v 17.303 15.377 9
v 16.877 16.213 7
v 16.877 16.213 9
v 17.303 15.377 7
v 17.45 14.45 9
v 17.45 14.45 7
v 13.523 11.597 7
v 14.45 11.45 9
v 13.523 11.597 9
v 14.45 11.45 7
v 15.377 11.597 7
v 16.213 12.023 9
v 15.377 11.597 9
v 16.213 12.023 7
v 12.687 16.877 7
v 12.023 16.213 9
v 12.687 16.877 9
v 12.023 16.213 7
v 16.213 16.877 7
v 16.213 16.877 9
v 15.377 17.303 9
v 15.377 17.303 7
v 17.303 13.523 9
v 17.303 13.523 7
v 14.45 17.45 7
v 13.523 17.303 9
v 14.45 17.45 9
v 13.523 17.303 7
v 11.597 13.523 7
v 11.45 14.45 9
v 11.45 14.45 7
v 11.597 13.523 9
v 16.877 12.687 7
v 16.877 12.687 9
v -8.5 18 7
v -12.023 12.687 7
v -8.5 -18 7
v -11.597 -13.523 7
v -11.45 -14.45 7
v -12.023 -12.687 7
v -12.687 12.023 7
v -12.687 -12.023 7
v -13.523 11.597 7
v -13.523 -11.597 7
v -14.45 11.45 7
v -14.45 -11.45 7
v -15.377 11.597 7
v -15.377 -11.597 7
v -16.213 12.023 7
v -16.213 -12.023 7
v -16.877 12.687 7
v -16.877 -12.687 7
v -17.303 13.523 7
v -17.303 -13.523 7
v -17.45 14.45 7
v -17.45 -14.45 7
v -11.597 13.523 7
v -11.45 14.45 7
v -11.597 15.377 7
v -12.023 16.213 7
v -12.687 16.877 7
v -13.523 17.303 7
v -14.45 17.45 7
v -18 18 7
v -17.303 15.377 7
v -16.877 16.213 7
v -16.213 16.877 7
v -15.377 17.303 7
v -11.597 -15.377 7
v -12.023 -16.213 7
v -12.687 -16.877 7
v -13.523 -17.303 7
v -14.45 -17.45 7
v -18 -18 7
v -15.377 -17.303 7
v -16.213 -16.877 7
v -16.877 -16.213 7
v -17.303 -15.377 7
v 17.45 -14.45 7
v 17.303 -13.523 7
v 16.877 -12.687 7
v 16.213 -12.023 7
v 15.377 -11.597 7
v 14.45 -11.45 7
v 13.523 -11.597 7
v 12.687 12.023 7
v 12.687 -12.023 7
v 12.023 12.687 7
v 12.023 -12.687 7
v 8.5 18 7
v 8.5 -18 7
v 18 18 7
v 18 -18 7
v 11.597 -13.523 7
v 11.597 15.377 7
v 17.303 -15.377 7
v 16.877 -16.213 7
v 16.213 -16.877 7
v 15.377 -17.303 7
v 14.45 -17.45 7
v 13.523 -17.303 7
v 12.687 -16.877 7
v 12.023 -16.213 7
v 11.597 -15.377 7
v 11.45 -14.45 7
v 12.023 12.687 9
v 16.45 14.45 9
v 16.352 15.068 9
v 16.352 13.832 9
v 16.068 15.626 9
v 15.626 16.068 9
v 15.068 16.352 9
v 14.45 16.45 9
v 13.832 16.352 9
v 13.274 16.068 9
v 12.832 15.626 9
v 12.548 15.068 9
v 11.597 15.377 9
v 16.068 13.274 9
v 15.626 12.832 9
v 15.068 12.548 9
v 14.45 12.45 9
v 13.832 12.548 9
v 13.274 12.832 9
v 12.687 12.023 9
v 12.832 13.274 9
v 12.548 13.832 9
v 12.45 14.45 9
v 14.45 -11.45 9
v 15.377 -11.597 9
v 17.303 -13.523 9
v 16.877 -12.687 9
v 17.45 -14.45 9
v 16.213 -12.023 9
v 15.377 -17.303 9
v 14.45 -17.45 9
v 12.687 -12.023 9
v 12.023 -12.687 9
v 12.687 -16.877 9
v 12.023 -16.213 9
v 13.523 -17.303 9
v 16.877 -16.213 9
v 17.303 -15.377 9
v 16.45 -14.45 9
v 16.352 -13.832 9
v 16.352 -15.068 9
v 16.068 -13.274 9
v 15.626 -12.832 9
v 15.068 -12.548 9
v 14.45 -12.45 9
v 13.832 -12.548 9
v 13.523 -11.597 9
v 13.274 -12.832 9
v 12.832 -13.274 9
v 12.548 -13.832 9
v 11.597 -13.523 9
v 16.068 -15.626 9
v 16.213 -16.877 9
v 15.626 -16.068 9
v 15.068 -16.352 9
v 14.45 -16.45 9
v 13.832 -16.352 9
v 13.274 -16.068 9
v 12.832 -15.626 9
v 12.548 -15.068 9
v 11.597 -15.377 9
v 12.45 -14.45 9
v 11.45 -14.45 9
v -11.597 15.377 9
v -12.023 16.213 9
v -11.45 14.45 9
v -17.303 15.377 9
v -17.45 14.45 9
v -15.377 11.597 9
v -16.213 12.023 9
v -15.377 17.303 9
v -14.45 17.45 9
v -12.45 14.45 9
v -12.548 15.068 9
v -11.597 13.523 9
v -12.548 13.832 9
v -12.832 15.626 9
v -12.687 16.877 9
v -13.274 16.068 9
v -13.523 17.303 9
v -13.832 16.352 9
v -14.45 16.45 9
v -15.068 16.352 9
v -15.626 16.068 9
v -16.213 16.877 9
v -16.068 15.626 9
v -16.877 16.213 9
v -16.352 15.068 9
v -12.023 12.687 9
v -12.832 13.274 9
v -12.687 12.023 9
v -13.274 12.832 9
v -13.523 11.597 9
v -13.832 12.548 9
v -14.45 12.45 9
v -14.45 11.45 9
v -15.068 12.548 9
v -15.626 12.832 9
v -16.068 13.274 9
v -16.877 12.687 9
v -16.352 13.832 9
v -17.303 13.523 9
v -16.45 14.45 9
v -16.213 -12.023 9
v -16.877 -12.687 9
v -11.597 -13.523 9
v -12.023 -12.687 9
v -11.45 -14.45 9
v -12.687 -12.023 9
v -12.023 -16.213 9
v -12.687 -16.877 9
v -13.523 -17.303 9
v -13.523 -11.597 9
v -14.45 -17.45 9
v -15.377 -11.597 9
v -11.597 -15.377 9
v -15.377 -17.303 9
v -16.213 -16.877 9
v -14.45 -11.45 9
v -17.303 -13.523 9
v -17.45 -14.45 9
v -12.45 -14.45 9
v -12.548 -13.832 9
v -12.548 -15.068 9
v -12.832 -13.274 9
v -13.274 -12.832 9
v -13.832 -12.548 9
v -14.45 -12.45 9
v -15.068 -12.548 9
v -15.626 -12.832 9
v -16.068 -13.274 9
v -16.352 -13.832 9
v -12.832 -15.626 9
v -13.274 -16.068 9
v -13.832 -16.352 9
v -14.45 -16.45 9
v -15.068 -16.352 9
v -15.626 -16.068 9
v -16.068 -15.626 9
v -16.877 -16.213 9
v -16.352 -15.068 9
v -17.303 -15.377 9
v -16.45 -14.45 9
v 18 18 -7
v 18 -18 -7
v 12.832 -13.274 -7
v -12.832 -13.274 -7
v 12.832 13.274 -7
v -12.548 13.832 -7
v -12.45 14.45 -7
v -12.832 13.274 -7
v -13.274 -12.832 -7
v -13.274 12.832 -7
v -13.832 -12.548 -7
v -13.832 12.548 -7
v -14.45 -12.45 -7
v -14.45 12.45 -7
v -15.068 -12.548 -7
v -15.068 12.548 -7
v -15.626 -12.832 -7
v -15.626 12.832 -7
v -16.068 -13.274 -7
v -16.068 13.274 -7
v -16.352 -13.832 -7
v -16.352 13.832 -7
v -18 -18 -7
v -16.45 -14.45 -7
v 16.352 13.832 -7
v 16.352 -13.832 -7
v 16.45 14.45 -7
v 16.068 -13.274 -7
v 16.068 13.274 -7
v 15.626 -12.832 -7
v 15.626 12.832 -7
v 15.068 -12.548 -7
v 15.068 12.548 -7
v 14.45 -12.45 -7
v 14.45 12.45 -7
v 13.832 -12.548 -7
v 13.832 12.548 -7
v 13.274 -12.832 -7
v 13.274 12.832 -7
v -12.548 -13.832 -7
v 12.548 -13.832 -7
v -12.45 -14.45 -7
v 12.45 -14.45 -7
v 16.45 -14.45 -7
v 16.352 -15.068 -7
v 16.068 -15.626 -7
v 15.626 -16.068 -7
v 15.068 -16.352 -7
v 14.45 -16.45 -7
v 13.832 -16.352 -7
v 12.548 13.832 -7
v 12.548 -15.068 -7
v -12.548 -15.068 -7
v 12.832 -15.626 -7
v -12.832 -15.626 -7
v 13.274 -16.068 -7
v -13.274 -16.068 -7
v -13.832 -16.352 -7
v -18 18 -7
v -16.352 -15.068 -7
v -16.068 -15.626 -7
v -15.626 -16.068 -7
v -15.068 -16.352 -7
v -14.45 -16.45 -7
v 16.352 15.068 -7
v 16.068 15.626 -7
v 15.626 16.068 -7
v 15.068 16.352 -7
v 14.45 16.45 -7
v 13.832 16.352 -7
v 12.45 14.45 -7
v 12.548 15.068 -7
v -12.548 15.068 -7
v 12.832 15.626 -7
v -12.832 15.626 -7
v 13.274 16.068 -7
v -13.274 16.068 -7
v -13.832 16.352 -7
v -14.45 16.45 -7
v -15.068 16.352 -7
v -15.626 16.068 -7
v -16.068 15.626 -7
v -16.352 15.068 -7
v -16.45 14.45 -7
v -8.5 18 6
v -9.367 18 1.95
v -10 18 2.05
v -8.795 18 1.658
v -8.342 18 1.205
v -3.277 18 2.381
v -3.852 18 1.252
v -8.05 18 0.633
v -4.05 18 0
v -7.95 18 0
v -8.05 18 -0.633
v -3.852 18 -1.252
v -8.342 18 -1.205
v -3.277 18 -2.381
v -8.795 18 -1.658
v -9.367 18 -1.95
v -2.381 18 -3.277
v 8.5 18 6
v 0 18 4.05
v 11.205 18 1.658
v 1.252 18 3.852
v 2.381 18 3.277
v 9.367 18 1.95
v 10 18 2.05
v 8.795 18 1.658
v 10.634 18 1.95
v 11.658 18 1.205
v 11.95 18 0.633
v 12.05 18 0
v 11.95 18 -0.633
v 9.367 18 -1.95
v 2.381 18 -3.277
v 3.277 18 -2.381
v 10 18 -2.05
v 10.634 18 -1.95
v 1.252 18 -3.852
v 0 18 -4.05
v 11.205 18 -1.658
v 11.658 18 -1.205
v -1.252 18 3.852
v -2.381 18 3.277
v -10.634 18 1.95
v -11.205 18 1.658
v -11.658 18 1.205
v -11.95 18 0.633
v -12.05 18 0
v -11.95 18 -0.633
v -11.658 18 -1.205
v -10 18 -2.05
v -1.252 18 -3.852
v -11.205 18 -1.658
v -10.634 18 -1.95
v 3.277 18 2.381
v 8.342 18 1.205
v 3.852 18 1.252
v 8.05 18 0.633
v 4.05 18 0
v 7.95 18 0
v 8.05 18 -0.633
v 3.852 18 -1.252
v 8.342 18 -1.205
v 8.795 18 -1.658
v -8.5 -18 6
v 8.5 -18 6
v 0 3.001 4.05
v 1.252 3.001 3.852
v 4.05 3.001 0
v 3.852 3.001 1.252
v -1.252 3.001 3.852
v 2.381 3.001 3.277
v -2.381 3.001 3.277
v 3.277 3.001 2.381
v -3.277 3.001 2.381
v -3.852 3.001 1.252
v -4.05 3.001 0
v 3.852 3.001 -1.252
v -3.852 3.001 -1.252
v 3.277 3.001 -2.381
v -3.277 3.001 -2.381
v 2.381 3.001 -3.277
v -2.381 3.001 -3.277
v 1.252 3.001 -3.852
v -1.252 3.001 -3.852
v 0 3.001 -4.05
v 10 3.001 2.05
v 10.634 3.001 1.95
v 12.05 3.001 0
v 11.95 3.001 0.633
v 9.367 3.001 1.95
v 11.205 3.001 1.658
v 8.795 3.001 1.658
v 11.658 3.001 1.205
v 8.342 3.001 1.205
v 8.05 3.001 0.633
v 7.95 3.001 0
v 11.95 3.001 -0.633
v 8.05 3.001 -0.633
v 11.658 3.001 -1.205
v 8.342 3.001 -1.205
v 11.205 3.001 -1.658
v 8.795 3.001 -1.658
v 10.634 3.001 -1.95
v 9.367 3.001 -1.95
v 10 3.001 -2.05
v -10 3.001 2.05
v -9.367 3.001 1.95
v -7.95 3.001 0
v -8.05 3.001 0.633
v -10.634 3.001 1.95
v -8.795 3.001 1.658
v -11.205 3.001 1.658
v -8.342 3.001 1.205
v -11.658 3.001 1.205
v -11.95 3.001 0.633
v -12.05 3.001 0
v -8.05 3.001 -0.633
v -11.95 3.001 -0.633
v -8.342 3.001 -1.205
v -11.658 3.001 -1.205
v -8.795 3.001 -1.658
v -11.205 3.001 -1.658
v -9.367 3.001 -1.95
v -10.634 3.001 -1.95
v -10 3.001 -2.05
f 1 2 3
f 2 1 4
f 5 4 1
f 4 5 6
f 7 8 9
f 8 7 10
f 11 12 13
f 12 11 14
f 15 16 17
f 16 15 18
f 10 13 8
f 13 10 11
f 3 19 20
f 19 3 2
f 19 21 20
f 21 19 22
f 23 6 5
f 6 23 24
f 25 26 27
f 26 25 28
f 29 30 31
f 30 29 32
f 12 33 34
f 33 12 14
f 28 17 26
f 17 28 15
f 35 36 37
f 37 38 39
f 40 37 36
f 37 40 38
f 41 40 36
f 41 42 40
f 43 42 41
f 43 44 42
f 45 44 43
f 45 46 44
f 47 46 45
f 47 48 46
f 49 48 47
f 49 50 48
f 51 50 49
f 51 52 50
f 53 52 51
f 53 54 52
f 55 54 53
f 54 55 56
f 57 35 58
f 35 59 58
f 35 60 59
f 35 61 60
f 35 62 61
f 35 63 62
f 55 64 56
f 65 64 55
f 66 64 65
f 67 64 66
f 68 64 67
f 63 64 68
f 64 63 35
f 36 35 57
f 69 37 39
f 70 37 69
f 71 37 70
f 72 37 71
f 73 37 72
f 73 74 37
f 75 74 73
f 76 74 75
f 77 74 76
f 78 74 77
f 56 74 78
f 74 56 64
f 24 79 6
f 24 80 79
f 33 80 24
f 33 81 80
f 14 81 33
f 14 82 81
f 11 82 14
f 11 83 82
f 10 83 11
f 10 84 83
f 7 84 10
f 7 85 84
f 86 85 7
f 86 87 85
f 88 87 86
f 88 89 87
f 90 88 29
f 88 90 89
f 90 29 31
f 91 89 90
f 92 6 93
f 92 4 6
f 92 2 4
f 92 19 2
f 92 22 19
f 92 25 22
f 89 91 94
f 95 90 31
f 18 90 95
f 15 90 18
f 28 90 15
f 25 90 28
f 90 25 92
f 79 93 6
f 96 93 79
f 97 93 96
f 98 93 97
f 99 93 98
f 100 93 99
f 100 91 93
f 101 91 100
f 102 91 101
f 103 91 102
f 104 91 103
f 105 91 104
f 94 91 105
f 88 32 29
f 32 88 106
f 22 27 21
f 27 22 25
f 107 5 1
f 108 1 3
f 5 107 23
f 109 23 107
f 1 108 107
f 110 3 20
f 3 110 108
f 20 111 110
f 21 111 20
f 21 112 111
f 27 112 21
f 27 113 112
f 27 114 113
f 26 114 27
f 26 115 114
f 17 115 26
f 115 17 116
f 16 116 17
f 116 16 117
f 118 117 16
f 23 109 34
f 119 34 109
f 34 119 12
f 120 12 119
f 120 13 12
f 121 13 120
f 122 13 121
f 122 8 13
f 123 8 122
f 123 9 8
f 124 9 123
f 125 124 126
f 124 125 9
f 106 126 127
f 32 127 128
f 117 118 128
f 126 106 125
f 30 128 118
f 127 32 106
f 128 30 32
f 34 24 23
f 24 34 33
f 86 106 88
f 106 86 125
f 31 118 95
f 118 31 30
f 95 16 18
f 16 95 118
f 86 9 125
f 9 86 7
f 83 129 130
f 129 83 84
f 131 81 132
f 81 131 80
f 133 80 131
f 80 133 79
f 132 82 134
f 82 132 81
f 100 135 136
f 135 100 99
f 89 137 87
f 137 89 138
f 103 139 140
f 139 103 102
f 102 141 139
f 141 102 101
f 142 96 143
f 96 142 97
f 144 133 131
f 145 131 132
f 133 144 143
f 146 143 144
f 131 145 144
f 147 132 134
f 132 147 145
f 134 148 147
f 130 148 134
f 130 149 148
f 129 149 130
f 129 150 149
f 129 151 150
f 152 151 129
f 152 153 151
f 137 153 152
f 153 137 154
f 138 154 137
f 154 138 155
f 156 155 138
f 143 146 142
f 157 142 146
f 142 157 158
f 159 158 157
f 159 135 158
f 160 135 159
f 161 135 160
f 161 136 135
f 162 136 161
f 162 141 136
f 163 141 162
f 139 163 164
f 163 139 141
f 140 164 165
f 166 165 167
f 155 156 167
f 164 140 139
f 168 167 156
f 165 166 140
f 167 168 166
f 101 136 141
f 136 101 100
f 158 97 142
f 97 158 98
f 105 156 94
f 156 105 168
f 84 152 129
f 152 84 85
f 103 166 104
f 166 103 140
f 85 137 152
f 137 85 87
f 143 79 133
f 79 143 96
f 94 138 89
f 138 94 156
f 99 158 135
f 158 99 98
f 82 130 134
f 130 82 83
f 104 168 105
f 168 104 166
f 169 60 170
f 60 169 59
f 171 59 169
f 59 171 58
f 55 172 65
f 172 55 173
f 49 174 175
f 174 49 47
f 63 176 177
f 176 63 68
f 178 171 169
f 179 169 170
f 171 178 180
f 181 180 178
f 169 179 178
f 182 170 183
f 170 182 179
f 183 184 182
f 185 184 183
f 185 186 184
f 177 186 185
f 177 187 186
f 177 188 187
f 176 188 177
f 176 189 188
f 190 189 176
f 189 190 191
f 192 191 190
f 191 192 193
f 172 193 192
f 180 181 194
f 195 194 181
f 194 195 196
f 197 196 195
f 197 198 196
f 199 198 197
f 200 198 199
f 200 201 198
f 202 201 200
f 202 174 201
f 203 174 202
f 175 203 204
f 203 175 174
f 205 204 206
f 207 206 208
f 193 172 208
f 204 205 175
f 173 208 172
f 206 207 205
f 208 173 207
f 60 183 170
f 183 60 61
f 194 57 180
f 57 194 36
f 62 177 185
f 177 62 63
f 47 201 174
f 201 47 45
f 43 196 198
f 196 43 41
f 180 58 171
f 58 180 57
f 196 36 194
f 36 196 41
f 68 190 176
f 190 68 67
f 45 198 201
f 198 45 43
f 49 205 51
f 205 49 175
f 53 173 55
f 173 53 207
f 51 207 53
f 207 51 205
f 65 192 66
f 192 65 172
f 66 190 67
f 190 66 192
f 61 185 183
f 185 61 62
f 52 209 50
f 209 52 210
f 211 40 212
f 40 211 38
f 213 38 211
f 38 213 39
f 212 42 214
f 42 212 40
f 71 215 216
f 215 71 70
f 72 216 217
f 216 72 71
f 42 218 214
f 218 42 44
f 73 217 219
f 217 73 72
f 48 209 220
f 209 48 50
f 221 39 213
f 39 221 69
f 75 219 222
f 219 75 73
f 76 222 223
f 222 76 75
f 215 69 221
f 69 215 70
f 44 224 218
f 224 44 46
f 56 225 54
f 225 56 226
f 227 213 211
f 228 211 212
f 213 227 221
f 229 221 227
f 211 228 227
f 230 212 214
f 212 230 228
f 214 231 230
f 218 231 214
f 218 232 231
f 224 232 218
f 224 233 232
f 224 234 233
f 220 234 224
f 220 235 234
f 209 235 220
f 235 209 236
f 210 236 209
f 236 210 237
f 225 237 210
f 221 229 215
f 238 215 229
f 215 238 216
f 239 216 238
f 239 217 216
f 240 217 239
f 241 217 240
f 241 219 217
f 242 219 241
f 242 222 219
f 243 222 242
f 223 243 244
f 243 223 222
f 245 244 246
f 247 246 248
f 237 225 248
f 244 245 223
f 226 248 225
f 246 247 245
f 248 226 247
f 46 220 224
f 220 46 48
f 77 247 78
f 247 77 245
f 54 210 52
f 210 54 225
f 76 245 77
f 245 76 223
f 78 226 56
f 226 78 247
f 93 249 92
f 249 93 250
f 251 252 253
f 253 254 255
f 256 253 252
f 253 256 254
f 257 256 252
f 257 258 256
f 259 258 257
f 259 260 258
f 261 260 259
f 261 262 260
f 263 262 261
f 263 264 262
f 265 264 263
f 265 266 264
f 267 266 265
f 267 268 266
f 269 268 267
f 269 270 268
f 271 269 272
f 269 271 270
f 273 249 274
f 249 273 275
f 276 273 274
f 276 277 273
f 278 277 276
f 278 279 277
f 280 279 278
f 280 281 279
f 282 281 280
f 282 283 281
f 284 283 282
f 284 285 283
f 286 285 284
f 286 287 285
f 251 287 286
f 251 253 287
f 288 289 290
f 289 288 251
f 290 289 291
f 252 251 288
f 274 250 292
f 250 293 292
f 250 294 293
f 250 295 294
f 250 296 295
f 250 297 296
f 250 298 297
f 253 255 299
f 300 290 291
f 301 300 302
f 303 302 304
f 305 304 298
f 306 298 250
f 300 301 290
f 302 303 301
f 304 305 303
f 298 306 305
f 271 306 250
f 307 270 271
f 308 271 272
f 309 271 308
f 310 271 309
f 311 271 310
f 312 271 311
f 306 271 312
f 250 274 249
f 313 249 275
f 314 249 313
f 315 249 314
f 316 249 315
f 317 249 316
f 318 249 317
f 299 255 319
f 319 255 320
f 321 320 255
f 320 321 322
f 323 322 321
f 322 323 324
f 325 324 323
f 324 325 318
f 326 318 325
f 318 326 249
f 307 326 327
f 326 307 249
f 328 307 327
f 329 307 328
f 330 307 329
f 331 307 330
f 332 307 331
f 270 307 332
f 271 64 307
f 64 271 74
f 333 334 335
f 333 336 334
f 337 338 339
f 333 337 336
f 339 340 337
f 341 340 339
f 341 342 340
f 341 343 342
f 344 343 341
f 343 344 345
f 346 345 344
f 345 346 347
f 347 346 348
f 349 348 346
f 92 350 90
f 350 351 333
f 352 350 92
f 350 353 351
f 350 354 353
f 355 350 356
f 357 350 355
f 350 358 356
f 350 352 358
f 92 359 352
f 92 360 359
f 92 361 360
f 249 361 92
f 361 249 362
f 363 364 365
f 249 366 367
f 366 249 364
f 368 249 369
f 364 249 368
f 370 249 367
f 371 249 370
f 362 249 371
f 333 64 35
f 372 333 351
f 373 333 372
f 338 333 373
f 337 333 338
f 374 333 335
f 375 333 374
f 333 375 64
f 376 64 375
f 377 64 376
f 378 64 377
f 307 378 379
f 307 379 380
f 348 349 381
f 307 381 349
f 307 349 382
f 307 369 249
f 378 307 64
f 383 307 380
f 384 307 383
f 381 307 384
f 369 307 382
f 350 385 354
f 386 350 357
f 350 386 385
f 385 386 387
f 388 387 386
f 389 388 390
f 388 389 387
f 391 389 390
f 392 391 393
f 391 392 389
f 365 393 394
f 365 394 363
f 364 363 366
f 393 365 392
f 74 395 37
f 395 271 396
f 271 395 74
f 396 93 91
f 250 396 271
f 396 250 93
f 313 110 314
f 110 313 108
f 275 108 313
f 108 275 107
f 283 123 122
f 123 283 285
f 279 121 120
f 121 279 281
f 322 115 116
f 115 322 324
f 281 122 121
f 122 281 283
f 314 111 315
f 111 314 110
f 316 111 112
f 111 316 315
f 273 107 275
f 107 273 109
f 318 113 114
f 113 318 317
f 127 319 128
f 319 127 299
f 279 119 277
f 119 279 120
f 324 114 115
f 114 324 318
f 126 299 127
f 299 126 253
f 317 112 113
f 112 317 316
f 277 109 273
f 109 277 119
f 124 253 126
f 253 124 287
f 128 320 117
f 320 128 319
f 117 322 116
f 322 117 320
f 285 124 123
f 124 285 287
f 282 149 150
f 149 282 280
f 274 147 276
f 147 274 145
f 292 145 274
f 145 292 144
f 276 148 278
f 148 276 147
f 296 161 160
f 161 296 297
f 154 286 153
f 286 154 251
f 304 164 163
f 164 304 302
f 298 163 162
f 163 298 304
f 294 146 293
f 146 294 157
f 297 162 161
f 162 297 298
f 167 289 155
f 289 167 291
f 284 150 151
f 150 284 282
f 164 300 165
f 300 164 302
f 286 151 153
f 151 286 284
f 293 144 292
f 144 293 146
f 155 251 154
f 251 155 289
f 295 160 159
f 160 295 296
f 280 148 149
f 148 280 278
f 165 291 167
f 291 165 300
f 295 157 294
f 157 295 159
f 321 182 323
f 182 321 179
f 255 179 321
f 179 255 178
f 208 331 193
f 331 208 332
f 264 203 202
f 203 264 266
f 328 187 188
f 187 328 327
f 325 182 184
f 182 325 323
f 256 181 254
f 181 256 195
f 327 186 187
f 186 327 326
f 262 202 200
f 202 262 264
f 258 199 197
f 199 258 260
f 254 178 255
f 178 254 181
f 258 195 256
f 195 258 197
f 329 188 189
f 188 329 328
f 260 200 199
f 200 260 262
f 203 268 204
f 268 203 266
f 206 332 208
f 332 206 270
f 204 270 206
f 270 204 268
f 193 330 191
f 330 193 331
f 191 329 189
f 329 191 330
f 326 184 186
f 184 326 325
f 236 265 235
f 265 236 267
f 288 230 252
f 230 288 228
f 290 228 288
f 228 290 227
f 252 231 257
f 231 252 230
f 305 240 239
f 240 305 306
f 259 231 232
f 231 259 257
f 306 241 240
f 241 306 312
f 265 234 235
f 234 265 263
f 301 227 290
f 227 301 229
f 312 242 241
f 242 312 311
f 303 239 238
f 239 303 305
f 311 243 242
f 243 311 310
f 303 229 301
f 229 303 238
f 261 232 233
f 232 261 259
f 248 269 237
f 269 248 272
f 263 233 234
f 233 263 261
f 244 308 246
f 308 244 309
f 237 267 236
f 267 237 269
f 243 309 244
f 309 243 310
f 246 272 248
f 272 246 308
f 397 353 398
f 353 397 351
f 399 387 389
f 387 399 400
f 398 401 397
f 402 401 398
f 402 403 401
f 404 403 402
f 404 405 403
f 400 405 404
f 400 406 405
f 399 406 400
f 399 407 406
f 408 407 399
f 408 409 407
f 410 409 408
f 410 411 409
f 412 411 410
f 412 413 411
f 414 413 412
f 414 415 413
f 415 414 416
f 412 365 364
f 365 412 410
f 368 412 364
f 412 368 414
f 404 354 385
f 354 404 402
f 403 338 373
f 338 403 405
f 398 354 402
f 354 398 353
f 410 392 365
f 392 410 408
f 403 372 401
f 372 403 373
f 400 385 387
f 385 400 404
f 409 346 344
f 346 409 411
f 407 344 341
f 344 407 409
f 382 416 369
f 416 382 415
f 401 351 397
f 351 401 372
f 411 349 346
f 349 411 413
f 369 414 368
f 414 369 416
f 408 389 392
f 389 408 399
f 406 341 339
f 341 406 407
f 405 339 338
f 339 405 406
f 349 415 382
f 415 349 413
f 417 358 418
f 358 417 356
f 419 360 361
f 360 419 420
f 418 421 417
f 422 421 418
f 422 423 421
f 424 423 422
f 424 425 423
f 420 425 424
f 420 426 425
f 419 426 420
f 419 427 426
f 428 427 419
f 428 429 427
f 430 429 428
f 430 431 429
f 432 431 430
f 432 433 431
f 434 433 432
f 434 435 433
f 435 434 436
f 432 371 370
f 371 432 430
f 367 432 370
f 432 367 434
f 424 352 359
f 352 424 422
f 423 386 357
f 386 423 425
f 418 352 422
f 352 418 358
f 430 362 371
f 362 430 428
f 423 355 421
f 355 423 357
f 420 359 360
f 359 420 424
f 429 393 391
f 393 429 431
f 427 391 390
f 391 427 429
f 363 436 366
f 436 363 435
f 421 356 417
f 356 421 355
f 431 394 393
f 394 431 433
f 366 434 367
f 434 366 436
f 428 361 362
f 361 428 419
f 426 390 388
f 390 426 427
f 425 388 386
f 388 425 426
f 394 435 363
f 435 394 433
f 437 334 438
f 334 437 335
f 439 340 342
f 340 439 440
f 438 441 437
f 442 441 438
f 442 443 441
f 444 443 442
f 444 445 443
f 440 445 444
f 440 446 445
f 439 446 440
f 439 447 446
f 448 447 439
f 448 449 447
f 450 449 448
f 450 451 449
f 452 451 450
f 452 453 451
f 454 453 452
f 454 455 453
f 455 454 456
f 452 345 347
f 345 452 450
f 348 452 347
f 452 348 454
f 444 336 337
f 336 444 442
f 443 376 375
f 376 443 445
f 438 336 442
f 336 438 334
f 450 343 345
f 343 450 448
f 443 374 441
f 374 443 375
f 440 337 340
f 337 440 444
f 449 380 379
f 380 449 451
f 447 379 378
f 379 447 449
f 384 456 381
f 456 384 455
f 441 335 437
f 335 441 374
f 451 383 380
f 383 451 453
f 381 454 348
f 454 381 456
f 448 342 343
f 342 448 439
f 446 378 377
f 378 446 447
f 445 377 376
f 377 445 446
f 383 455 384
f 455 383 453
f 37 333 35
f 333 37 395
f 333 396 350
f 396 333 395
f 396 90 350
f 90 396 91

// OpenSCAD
// file: CameraMount.scad
//include <threads.scad>

// UC-A73


UNC_Insert_D = 8.1;
M3_Insert_D = 4.1;
module Camera(
camera_dim_width,
camera_dim_height,
camera_hole_width,
camera_hole_height,
camera_center_x,
camera_hole_dim,
camera_hole_nipple_h,
camera_hole_nipple_d,
mount_hegiht,
ribbon
)
{

    translate([0,0,-mount_hegiht/2])difference() {
        
        // box + nipples
        union()
        {
        
            translate([0,0,mount_hegiht/2])
                cube([camera_dim_width, camera_dim_height, mount_hegiht], center=true);
            translate([0,-camera_center_x,0])
            {
                translate([camera_hole_width/2, camera_hole_height/2, mount_hegiht])
                    cylinder(h = camera_hole_nipple_h, d = camera_hole_nipple_d, $fn=20);
                translate([camera_hole_width/2, -camera_hole_height/2, mount_hegiht])
                    cylinder(h = camera_hole_nipple_h, d = camera_hole_nipple_d, $fn=20);
                translate([-camera_hole_width/2, camera_hole_height/2, mount_hegiht])
                    cylinder(h = camera_hole_nipple_h, d = camera_hole_nipple_d, $fn=20);
                translate([-camera_hole_width/2, -camera_hole_height/2, mount_hegiht])
                    cylinder(h = camera_hole_nipple_h, d = camera_hole_nipple_d, $fn=20);
            }
        }
         
            
        // mount Holes for camera 
        translate([0,-camera_center_x,0])
        {
            translate([camera_hole_width/2, camera_hole_height/2, -0.001])
                cylinder(h = 100, d = camera_hole_dim, $fn=20);
            
            translate([camera_hole_width/2, -camera_hole_height/2,-0.001])
                cylinder(h = 100, d = camera_hole_dim, $fn=20);

            translate([-camera_hole_width/2, camera_hole_height/2,-0.001])
                cylinder(h = 100, d = camera_hole_dim, $fn=20);

            translate([-camera_hole_width/2, -camera_hole_height/2,-0.001])
                cylinder(h = 100, d = camera_hole_dim, $fn=20);
        }
        // bottom for UNC
        translate([0,camera_dim_height/2+0.001,mount_hegiht/2])
            rotate([90,0,0])
                cylinder(h = 15, d = UNC_Insert_D, $fn=20);
        // bottom for M3
        translate([10,camera_dim_height/2+0.001,mount_hegiht/2])
            rotate([90,0,0])
                cylinder(h = 15, d = M3_Insert_D, $fn=20);
         translate([-10,camera_dim_height/2+0.001,mount_hegiht/2])
            rotate([90,0,0])
                cylinder(h = 15, d = M3_Insert_D, $fn=20);
        
        // cutout for ribbon
        translate([0,0,mount_hegiht])
            rotate([90,0,0])
                cube([ribbon, 2, camera_dim_height], center=true); 
        
    }
}
// main file
UC_261_camera_dim_width = 36;
UC_261_camera_dim_height = 36;
UC_261_camera_hole_width = 25.8+3.1;
UC_261_camera_hole_height = 25.8+3.1;
UC_261_camera_center_x = 0;
UC_261_camera_hole_dim = 4;
UC_261_camera_hole_nipple_h = 2;
UC_261_camera_hole_nipple_d = UC_261_camera_hole_dim + 2;
UC_261_mount_hegiht = 14;
UC_261_ribbon = 17;

include <CameraMount.scad>
module UC_261_Camera()
{
    Camera(
    UC_261_camera_dim_width,
    UC_261_camera_dim_height,
    UC_261_camera_hole_width,
    UC_261_camera_hole_height,

    UC_261_camera_center_x,
    UC_261_camera_hole_dim,
    UC_261_camera_hole_nipple_h,
    UC_261_camera_hole_nipple_d,
    UC_261_mount_hegiht,
    UC_261_ribbon);
}
UC_261_Camera();
